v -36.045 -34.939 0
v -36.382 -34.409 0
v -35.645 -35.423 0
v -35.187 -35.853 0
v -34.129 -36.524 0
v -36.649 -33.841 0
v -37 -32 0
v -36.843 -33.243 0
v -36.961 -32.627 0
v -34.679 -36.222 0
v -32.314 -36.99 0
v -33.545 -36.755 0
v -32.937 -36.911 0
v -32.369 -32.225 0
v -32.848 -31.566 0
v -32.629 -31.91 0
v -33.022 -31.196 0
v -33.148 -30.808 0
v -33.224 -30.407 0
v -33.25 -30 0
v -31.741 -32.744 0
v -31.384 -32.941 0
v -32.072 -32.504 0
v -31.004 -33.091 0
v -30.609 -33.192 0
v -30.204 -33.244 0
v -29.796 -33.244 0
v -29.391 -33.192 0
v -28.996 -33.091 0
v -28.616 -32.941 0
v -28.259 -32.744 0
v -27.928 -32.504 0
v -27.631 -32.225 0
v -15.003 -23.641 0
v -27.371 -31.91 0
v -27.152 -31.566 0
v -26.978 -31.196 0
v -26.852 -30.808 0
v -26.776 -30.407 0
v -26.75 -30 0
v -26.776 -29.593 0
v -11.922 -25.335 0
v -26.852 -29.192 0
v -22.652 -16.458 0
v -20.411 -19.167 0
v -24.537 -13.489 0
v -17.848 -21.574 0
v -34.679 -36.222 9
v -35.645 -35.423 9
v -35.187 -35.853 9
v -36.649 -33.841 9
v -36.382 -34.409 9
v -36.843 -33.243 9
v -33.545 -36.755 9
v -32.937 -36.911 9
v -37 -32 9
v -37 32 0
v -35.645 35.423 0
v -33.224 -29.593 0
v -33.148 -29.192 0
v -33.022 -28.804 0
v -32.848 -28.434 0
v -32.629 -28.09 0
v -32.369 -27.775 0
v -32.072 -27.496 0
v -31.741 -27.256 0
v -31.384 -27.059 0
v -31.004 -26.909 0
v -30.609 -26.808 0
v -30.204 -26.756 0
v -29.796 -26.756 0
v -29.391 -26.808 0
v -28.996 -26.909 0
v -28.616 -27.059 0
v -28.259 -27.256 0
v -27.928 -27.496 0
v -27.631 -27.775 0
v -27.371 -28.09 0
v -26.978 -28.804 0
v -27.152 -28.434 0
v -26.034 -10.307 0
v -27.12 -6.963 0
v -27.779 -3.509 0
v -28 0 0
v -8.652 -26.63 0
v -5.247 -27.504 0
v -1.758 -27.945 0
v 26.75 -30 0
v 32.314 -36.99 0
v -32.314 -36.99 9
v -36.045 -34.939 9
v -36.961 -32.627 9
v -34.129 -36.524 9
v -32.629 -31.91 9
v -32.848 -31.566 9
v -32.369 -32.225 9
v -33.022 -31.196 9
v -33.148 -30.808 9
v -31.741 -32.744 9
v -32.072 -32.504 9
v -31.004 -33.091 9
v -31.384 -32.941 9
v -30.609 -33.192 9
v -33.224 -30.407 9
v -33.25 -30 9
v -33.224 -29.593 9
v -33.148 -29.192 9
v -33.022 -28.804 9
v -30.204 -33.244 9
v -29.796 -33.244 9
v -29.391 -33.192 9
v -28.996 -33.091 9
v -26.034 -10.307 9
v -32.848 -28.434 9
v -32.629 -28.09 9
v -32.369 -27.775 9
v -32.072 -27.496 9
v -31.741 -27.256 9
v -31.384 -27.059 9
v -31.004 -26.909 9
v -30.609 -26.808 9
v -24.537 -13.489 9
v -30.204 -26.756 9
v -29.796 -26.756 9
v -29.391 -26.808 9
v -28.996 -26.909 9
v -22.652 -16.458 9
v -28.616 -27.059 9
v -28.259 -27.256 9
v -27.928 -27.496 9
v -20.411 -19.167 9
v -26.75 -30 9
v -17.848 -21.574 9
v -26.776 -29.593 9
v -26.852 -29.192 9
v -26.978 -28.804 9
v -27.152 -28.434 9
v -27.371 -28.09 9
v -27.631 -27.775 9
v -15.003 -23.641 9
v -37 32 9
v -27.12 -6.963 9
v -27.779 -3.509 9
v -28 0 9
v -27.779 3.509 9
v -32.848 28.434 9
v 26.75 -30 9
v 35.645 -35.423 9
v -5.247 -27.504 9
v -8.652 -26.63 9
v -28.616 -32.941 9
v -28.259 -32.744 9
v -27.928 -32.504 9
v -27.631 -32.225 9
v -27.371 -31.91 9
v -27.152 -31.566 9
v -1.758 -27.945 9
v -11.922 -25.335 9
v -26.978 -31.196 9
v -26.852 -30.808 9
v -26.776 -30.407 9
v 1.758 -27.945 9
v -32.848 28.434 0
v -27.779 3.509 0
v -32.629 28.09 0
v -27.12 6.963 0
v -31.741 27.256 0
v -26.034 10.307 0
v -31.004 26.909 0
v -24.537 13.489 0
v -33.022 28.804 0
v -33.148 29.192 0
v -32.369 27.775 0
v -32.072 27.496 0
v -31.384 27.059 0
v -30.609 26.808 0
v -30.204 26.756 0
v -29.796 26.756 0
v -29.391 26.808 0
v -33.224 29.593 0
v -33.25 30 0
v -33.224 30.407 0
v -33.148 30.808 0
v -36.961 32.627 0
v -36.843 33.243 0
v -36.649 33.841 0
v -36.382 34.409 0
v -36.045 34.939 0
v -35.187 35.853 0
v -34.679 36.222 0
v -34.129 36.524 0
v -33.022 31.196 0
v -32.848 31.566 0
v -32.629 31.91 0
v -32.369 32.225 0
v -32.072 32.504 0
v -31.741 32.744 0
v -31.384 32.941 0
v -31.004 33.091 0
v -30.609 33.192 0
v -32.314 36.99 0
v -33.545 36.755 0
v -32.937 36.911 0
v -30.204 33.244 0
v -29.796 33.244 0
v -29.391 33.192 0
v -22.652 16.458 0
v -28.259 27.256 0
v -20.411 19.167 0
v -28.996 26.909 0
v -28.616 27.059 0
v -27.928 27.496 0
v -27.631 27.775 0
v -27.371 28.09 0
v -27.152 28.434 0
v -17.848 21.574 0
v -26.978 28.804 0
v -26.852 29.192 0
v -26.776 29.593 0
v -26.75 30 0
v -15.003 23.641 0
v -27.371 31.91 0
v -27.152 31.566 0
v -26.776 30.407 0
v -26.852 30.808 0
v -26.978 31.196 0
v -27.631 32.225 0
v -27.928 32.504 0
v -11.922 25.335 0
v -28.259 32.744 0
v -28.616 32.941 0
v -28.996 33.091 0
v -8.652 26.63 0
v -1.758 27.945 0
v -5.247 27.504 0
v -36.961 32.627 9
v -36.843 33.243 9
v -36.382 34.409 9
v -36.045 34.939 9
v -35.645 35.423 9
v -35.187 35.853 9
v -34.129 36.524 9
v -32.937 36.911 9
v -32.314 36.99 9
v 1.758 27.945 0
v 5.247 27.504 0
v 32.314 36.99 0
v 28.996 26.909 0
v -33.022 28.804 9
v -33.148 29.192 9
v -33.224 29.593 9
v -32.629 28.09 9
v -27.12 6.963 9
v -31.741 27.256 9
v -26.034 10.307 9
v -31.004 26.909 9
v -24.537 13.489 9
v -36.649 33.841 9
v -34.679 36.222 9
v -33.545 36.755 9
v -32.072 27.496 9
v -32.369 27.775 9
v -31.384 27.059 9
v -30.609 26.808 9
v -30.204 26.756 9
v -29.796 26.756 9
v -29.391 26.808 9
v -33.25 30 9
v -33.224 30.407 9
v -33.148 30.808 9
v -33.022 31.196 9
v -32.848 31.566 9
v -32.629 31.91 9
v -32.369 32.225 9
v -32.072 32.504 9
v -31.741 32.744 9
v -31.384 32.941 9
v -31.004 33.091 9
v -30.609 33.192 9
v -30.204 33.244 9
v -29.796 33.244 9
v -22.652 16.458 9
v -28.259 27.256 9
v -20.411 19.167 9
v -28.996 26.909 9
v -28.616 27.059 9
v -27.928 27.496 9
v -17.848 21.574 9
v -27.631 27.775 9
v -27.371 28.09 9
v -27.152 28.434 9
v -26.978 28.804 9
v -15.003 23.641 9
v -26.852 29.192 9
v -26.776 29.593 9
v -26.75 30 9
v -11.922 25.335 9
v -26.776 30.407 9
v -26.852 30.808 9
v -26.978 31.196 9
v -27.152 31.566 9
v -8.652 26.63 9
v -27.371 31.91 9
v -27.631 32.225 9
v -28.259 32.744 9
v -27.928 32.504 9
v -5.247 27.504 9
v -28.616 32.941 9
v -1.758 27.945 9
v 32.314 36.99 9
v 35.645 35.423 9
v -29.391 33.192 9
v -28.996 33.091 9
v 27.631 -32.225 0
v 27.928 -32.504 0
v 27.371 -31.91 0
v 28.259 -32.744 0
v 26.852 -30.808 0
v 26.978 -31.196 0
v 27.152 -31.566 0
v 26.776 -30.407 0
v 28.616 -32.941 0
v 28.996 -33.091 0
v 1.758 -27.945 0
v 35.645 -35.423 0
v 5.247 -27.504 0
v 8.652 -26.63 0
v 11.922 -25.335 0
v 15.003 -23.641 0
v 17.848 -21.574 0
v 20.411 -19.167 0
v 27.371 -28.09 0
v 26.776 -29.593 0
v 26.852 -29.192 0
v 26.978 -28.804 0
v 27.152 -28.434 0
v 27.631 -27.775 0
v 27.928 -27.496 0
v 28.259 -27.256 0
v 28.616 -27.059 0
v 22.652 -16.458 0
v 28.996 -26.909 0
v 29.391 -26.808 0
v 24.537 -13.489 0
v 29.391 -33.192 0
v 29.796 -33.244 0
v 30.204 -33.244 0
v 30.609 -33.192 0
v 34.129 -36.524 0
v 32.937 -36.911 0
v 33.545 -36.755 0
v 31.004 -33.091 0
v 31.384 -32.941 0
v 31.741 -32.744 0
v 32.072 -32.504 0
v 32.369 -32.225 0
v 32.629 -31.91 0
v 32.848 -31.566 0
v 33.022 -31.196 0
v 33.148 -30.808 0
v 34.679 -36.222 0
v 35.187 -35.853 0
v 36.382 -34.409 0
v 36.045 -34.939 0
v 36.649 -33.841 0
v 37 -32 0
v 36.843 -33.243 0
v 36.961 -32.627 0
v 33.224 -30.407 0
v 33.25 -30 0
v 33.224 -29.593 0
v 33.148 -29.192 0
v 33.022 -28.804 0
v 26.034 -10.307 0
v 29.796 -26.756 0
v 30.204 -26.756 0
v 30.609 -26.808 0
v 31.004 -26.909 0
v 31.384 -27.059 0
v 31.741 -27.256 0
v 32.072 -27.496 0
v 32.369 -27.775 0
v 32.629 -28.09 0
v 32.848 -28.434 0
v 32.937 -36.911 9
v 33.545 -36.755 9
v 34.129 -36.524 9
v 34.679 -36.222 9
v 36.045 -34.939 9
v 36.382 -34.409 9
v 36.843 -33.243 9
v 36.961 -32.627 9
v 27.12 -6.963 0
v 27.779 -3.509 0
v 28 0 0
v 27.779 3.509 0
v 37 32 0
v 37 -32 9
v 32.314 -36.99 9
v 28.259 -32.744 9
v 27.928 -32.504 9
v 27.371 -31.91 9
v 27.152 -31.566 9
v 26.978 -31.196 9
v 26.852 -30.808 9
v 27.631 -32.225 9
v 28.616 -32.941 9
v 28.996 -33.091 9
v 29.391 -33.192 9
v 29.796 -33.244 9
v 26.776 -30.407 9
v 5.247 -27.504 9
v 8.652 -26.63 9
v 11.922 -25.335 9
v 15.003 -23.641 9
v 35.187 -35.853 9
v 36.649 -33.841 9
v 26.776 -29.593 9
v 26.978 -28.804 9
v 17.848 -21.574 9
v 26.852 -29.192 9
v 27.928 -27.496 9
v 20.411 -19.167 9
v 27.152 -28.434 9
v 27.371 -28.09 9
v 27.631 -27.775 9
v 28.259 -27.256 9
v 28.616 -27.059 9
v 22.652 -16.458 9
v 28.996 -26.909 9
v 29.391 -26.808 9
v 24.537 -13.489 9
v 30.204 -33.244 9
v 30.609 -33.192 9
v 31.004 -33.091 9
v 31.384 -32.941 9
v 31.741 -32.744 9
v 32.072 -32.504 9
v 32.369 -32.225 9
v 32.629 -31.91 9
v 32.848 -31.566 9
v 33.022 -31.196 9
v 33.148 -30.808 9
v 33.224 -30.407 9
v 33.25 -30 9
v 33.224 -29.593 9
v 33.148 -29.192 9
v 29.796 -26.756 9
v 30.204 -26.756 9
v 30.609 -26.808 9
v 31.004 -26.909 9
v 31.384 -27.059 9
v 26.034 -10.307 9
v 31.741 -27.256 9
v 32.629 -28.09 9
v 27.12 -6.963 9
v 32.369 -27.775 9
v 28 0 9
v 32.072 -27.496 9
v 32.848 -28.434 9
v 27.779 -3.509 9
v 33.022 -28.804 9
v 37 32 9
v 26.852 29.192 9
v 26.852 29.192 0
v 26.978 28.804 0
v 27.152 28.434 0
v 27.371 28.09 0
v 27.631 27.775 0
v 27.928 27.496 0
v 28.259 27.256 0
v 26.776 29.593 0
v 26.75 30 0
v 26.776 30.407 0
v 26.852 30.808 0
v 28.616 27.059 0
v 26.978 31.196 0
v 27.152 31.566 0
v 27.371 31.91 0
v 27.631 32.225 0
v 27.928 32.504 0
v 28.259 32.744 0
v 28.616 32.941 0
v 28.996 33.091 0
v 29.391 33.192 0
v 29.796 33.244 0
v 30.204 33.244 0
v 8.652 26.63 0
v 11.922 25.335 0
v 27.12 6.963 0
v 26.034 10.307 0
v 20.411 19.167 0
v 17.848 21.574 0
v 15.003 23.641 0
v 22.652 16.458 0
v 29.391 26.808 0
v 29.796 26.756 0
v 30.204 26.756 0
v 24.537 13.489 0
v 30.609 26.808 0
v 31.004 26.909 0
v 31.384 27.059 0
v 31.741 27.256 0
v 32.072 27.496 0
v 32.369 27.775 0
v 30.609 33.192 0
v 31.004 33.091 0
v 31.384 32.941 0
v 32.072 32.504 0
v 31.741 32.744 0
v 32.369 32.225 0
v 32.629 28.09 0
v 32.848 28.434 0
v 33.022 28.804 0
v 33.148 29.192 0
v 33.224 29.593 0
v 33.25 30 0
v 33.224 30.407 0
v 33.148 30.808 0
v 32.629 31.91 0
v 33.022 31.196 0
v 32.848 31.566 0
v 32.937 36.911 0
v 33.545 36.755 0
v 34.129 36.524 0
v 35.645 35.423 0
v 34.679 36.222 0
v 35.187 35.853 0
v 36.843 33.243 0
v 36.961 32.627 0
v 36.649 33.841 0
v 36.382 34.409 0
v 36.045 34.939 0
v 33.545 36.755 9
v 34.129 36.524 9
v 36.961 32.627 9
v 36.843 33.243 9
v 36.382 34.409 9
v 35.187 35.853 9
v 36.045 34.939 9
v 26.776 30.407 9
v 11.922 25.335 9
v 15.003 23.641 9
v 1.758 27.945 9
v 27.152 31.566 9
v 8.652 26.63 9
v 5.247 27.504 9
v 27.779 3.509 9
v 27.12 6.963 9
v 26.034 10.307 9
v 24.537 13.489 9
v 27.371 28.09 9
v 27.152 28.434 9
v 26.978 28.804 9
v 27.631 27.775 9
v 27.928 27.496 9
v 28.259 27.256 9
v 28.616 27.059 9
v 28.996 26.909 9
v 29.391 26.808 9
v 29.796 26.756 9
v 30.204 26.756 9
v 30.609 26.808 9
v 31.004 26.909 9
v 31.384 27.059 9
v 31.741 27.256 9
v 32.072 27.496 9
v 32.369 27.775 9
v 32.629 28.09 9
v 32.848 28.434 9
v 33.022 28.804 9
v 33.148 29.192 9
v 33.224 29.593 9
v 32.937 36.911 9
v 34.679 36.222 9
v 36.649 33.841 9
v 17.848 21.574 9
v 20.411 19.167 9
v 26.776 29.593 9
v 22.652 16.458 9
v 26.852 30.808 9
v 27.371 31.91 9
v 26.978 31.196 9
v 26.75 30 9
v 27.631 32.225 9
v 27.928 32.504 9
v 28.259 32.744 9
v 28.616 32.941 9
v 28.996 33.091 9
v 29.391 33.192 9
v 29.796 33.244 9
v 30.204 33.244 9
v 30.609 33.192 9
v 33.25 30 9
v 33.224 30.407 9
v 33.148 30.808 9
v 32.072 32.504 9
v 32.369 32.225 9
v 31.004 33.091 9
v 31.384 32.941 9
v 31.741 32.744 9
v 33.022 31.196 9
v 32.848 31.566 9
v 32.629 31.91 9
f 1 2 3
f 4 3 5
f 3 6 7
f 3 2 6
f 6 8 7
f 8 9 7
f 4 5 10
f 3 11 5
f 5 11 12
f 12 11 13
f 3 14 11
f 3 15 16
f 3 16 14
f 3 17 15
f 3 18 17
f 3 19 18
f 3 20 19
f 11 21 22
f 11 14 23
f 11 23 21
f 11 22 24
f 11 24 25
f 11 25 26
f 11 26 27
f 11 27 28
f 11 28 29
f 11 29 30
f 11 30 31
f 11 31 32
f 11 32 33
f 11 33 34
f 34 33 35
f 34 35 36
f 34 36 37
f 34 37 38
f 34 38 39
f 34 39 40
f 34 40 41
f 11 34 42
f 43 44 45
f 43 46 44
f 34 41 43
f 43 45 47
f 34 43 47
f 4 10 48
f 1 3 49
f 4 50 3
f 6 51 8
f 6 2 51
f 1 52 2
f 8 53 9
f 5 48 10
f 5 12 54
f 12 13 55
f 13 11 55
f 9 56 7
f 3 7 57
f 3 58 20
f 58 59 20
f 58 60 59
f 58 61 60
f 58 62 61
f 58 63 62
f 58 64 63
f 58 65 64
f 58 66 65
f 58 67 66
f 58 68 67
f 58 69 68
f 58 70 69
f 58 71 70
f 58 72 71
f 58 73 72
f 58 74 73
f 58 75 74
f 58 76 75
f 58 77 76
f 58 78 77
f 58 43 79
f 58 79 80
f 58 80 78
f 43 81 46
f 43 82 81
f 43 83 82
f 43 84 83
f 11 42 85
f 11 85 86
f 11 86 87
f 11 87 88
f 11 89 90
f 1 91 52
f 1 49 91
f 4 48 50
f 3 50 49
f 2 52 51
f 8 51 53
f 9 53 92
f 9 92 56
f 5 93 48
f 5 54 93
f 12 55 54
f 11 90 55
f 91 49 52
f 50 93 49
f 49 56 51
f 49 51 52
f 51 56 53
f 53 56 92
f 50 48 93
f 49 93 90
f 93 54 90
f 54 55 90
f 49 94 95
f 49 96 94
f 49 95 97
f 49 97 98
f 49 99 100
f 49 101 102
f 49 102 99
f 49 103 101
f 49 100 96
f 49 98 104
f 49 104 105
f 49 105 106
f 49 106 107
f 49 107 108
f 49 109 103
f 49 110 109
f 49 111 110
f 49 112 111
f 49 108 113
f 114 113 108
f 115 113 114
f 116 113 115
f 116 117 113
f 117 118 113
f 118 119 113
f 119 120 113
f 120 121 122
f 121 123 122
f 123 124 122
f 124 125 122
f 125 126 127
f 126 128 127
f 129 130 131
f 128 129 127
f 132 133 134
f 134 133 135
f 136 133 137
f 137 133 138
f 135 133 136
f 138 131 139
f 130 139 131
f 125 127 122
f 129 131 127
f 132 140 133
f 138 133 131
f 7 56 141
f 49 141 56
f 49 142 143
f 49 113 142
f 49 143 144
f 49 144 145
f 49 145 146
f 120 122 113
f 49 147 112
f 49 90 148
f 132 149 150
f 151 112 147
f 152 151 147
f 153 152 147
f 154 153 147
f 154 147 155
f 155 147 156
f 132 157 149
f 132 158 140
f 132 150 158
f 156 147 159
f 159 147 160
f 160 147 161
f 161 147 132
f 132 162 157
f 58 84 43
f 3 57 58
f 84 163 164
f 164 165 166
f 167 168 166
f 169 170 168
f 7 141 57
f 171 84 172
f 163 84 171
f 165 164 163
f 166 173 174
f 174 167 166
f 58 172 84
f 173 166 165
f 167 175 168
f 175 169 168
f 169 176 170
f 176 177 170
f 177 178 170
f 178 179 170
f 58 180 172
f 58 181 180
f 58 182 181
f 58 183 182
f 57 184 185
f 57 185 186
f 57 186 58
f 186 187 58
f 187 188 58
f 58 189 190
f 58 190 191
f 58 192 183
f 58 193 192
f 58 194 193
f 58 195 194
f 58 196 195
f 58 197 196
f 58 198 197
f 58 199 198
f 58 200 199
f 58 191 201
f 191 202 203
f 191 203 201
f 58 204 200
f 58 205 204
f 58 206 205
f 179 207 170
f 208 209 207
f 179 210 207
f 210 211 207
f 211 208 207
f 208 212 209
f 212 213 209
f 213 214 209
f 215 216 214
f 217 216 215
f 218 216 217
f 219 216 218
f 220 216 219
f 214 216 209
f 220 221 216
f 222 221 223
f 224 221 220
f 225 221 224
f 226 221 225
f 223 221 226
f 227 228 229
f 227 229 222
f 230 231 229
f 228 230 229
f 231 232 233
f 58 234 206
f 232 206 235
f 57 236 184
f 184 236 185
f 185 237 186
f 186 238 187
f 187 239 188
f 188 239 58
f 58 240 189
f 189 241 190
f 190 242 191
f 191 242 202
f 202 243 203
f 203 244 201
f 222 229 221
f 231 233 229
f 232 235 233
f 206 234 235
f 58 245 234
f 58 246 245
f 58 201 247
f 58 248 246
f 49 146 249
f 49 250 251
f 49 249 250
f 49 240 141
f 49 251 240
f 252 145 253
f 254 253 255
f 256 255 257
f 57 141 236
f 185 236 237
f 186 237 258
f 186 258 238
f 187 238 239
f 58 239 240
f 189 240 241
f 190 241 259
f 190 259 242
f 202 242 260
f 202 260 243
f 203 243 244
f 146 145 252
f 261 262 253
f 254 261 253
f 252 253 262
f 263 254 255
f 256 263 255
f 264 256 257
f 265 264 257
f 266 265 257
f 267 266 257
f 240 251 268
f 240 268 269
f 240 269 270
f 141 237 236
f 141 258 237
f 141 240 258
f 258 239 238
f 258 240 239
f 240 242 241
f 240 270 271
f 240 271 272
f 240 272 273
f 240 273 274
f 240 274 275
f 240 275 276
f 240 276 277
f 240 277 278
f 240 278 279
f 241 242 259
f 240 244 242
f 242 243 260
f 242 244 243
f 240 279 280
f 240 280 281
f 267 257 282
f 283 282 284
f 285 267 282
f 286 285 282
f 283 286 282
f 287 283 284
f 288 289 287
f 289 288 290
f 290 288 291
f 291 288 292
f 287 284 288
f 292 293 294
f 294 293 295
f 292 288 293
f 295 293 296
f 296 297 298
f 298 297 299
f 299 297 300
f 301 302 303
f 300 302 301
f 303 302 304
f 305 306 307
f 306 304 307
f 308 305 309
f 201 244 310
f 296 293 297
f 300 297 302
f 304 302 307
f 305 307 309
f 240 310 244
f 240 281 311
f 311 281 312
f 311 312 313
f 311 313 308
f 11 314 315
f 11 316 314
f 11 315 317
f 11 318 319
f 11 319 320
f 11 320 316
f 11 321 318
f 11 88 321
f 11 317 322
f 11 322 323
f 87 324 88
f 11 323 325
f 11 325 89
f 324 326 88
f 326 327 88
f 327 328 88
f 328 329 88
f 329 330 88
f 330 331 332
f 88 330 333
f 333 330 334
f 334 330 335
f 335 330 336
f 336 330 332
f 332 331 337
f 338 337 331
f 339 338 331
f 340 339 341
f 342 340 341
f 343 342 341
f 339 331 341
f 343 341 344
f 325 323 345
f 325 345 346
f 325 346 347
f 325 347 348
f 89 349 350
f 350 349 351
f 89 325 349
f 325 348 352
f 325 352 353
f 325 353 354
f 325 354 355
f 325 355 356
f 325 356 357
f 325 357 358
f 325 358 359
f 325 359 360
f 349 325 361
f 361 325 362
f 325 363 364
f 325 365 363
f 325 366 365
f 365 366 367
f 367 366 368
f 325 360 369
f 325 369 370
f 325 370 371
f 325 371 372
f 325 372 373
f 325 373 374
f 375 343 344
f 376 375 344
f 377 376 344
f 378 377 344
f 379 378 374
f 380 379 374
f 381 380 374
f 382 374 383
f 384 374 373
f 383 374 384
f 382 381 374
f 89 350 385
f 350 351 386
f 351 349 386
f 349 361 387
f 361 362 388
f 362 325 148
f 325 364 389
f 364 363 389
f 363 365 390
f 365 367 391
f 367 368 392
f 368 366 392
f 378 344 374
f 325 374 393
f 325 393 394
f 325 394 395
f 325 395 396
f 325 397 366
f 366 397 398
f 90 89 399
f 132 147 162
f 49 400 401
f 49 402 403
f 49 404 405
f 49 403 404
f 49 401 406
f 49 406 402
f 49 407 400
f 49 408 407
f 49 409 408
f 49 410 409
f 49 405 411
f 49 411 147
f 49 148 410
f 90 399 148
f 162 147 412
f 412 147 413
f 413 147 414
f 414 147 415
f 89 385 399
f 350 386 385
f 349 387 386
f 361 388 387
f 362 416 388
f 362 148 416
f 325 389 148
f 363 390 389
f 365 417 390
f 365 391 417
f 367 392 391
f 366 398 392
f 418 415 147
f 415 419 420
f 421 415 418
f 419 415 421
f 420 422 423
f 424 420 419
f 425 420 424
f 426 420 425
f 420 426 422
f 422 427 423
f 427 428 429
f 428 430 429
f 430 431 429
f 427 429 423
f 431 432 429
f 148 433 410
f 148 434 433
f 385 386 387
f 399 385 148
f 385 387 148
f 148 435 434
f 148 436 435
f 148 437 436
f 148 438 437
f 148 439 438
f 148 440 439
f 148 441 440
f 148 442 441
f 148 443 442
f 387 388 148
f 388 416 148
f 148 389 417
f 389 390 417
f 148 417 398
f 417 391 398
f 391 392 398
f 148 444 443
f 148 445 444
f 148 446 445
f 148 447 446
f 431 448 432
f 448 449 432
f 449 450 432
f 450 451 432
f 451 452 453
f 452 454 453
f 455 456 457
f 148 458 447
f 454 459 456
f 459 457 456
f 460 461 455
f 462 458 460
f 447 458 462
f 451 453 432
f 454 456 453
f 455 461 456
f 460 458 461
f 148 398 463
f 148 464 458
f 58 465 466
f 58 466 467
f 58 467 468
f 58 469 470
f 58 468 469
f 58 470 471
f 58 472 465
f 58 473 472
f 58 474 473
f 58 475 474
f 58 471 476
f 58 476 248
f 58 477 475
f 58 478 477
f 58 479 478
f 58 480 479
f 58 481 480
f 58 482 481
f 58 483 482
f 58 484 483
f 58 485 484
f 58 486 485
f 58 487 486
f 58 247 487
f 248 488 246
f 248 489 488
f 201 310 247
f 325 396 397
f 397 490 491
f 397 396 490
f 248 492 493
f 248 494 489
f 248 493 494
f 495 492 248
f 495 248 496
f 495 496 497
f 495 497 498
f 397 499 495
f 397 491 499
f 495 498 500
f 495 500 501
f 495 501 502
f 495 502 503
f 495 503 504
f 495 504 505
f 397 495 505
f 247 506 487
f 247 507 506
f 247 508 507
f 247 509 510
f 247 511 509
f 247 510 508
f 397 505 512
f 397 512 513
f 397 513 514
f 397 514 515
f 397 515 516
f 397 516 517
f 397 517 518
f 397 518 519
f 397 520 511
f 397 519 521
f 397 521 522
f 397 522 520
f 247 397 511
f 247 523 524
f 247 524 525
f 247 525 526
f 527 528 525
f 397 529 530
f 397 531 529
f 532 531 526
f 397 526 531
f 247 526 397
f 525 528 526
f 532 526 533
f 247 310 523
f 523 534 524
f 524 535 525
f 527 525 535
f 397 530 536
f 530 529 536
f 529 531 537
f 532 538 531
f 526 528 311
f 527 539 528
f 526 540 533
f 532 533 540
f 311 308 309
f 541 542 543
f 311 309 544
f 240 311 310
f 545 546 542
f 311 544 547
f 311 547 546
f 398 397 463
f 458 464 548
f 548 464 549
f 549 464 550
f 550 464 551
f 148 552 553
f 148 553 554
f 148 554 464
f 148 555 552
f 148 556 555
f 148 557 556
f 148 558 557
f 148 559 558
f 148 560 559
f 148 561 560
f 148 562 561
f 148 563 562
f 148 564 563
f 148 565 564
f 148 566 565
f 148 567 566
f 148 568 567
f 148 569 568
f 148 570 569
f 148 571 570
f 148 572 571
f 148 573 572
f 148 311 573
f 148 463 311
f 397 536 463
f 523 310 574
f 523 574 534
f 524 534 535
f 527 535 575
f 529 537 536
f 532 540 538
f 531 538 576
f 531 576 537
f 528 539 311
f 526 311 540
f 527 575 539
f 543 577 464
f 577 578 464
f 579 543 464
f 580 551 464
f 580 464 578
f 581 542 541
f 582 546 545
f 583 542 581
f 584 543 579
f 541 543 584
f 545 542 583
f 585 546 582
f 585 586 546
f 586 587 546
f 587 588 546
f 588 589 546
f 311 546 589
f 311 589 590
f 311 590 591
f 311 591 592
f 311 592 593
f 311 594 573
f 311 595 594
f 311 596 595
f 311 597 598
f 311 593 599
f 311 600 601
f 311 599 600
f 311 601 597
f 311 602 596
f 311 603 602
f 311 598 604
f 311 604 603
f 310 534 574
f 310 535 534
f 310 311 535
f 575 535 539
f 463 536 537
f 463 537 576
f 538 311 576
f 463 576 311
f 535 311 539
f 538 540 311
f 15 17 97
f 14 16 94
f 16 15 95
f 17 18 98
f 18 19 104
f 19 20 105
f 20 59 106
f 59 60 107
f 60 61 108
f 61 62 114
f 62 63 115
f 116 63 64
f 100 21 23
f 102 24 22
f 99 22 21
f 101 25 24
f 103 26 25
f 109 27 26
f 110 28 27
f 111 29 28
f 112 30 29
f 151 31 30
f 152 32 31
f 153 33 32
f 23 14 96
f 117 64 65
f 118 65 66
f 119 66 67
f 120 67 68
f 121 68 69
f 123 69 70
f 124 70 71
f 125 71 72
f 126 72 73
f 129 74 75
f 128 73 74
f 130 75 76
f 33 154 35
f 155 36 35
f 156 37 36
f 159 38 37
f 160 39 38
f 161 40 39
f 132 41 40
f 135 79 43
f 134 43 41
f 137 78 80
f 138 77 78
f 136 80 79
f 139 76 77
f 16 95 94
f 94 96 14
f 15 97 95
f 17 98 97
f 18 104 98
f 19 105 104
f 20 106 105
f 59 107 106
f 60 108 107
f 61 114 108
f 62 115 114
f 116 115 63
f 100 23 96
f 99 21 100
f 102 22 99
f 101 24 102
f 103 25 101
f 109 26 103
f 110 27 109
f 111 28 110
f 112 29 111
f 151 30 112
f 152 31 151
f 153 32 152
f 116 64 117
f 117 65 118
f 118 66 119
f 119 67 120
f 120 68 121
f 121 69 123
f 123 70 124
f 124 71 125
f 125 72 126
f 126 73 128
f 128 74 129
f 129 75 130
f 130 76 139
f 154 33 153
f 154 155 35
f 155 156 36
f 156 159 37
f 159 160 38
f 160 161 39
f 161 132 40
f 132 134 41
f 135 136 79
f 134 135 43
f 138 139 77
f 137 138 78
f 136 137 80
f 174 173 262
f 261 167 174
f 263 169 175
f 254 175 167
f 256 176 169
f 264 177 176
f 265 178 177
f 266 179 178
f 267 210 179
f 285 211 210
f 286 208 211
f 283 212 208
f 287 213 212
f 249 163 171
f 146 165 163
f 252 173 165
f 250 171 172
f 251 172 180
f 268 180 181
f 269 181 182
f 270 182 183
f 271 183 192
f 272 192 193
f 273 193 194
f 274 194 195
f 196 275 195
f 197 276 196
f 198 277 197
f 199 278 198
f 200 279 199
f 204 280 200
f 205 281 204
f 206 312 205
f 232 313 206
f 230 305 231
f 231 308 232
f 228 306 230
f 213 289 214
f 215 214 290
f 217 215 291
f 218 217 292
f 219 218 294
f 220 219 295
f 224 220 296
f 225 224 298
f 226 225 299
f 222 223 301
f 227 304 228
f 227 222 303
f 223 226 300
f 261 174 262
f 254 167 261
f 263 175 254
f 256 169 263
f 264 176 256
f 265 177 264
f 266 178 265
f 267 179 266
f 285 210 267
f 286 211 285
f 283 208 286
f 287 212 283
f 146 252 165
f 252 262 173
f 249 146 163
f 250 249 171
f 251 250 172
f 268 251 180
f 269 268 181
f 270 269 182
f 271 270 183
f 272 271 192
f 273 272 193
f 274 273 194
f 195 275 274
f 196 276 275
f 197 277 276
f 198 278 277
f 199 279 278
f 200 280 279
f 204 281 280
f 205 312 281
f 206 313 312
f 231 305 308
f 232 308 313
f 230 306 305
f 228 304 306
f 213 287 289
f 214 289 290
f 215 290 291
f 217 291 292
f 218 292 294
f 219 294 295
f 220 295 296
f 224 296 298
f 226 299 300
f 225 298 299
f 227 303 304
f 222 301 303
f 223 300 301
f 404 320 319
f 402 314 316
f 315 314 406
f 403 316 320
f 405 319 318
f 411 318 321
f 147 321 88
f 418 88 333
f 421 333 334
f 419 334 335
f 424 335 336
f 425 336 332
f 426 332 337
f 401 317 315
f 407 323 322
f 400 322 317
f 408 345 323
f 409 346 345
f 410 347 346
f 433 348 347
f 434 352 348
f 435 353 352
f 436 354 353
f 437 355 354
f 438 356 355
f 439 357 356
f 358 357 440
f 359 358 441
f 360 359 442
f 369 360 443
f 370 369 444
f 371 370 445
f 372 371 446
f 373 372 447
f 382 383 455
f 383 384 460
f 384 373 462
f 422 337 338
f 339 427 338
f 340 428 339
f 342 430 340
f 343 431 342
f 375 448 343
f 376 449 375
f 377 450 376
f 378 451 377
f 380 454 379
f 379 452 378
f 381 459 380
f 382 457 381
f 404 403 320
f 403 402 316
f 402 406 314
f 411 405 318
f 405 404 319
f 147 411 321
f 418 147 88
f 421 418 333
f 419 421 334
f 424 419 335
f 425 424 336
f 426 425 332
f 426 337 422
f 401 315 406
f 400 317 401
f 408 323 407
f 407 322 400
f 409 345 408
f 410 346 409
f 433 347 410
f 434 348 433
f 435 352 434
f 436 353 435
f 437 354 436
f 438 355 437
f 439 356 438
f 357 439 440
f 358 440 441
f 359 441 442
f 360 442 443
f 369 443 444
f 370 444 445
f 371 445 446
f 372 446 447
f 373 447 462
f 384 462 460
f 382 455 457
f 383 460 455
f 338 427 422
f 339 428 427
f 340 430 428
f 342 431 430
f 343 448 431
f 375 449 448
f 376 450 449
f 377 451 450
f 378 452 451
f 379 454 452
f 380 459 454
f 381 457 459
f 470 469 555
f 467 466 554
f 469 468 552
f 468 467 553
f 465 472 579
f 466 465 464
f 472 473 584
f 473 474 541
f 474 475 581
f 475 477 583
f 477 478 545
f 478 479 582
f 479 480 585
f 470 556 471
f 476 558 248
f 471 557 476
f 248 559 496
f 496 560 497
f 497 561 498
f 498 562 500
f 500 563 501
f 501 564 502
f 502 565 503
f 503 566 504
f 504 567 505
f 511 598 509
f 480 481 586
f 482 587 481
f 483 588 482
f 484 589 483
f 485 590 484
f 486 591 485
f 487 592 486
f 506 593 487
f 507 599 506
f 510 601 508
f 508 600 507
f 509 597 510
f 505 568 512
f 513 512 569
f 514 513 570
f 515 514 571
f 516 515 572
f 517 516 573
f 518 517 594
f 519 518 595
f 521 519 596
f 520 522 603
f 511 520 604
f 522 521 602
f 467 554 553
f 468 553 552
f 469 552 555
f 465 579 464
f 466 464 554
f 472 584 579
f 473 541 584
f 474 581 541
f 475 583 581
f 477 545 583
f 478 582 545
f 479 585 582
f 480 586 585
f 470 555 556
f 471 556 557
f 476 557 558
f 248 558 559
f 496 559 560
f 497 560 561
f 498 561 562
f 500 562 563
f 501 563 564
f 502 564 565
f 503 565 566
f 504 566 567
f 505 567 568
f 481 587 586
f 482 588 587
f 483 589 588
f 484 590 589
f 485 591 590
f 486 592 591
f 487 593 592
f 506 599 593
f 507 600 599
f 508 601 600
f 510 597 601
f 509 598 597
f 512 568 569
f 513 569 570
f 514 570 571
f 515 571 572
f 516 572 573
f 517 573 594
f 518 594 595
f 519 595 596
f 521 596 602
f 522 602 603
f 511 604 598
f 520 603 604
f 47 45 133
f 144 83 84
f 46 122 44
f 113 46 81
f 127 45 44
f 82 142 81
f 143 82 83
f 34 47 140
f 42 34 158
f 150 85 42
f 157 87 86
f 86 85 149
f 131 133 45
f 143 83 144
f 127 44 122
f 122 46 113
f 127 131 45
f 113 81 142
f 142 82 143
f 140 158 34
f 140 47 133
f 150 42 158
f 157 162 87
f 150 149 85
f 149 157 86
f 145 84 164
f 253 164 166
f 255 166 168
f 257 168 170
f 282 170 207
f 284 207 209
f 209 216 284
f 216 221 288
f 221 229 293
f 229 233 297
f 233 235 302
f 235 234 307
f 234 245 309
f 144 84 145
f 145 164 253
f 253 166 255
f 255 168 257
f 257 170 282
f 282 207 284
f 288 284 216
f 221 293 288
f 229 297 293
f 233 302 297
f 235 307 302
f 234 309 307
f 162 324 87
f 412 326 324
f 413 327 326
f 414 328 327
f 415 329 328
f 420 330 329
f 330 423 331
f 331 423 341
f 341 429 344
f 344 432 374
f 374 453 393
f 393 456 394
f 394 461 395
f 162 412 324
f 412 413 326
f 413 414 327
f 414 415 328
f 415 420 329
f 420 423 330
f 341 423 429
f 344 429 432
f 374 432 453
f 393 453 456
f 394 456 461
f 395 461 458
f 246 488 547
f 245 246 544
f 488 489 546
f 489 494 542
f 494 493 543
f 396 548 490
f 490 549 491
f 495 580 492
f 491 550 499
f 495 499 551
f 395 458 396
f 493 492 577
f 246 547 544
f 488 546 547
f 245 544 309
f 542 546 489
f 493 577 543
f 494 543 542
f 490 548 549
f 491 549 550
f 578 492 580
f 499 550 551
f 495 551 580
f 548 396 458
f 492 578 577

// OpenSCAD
$fn = 50;

difference() {
	union() {
		hull() {
			translate(v = [-32.0, 32.0, 0]) {
				cylinder(h = 9, r = 5);
			}
			translate(v = [32.0, 32.0, 0]) {
				cylinder(h = 9, r = 5);
			}
			translate(v = [-32.0, -32.0, 0]) {
				cylinder(h = 9, r = 5);
			}
			translate(v = [32.0, -32.0, 0]) {
				cylinder(h = 9, r = 5);
			}
		}
	}
	union() {
		translate(v = [-30.0, -30.0, -100.0]) {
			cylinder(h = 200, r = 3.25);
		}
		translate(v = [-30.0, 30.0, -100.0]) {
			cylinder(h = 200, r = 3.25);
		}
		translate(v = [30.0, -30.0, -100.0]) {
			cylinder(h = 200, r = 3.25);
		}
		translate(v = [30.0, 30.0, -100.0]) {
			cylinder(h = 200, r = 3.25);
		}
		translate(v = [-30.0, -30.0, -100.0]) {
			cylinder(h = 200, r = 1.8);
		}
		translate(v = [-30.0, 30.0, -100.0]) {
			cylinder(h = 200, r = 1.8);
		}
		translate(v = [30.0, -30.0, -100.0]) {
			cylinder(h = 200, r = 1.8);
		}
		translate(v = [30.0, 30.0, -100.0]) {
			cylinder(h = 200, r = 1.8);
		}
		cylinder(h = 9, r = 28.0);
	}
}
